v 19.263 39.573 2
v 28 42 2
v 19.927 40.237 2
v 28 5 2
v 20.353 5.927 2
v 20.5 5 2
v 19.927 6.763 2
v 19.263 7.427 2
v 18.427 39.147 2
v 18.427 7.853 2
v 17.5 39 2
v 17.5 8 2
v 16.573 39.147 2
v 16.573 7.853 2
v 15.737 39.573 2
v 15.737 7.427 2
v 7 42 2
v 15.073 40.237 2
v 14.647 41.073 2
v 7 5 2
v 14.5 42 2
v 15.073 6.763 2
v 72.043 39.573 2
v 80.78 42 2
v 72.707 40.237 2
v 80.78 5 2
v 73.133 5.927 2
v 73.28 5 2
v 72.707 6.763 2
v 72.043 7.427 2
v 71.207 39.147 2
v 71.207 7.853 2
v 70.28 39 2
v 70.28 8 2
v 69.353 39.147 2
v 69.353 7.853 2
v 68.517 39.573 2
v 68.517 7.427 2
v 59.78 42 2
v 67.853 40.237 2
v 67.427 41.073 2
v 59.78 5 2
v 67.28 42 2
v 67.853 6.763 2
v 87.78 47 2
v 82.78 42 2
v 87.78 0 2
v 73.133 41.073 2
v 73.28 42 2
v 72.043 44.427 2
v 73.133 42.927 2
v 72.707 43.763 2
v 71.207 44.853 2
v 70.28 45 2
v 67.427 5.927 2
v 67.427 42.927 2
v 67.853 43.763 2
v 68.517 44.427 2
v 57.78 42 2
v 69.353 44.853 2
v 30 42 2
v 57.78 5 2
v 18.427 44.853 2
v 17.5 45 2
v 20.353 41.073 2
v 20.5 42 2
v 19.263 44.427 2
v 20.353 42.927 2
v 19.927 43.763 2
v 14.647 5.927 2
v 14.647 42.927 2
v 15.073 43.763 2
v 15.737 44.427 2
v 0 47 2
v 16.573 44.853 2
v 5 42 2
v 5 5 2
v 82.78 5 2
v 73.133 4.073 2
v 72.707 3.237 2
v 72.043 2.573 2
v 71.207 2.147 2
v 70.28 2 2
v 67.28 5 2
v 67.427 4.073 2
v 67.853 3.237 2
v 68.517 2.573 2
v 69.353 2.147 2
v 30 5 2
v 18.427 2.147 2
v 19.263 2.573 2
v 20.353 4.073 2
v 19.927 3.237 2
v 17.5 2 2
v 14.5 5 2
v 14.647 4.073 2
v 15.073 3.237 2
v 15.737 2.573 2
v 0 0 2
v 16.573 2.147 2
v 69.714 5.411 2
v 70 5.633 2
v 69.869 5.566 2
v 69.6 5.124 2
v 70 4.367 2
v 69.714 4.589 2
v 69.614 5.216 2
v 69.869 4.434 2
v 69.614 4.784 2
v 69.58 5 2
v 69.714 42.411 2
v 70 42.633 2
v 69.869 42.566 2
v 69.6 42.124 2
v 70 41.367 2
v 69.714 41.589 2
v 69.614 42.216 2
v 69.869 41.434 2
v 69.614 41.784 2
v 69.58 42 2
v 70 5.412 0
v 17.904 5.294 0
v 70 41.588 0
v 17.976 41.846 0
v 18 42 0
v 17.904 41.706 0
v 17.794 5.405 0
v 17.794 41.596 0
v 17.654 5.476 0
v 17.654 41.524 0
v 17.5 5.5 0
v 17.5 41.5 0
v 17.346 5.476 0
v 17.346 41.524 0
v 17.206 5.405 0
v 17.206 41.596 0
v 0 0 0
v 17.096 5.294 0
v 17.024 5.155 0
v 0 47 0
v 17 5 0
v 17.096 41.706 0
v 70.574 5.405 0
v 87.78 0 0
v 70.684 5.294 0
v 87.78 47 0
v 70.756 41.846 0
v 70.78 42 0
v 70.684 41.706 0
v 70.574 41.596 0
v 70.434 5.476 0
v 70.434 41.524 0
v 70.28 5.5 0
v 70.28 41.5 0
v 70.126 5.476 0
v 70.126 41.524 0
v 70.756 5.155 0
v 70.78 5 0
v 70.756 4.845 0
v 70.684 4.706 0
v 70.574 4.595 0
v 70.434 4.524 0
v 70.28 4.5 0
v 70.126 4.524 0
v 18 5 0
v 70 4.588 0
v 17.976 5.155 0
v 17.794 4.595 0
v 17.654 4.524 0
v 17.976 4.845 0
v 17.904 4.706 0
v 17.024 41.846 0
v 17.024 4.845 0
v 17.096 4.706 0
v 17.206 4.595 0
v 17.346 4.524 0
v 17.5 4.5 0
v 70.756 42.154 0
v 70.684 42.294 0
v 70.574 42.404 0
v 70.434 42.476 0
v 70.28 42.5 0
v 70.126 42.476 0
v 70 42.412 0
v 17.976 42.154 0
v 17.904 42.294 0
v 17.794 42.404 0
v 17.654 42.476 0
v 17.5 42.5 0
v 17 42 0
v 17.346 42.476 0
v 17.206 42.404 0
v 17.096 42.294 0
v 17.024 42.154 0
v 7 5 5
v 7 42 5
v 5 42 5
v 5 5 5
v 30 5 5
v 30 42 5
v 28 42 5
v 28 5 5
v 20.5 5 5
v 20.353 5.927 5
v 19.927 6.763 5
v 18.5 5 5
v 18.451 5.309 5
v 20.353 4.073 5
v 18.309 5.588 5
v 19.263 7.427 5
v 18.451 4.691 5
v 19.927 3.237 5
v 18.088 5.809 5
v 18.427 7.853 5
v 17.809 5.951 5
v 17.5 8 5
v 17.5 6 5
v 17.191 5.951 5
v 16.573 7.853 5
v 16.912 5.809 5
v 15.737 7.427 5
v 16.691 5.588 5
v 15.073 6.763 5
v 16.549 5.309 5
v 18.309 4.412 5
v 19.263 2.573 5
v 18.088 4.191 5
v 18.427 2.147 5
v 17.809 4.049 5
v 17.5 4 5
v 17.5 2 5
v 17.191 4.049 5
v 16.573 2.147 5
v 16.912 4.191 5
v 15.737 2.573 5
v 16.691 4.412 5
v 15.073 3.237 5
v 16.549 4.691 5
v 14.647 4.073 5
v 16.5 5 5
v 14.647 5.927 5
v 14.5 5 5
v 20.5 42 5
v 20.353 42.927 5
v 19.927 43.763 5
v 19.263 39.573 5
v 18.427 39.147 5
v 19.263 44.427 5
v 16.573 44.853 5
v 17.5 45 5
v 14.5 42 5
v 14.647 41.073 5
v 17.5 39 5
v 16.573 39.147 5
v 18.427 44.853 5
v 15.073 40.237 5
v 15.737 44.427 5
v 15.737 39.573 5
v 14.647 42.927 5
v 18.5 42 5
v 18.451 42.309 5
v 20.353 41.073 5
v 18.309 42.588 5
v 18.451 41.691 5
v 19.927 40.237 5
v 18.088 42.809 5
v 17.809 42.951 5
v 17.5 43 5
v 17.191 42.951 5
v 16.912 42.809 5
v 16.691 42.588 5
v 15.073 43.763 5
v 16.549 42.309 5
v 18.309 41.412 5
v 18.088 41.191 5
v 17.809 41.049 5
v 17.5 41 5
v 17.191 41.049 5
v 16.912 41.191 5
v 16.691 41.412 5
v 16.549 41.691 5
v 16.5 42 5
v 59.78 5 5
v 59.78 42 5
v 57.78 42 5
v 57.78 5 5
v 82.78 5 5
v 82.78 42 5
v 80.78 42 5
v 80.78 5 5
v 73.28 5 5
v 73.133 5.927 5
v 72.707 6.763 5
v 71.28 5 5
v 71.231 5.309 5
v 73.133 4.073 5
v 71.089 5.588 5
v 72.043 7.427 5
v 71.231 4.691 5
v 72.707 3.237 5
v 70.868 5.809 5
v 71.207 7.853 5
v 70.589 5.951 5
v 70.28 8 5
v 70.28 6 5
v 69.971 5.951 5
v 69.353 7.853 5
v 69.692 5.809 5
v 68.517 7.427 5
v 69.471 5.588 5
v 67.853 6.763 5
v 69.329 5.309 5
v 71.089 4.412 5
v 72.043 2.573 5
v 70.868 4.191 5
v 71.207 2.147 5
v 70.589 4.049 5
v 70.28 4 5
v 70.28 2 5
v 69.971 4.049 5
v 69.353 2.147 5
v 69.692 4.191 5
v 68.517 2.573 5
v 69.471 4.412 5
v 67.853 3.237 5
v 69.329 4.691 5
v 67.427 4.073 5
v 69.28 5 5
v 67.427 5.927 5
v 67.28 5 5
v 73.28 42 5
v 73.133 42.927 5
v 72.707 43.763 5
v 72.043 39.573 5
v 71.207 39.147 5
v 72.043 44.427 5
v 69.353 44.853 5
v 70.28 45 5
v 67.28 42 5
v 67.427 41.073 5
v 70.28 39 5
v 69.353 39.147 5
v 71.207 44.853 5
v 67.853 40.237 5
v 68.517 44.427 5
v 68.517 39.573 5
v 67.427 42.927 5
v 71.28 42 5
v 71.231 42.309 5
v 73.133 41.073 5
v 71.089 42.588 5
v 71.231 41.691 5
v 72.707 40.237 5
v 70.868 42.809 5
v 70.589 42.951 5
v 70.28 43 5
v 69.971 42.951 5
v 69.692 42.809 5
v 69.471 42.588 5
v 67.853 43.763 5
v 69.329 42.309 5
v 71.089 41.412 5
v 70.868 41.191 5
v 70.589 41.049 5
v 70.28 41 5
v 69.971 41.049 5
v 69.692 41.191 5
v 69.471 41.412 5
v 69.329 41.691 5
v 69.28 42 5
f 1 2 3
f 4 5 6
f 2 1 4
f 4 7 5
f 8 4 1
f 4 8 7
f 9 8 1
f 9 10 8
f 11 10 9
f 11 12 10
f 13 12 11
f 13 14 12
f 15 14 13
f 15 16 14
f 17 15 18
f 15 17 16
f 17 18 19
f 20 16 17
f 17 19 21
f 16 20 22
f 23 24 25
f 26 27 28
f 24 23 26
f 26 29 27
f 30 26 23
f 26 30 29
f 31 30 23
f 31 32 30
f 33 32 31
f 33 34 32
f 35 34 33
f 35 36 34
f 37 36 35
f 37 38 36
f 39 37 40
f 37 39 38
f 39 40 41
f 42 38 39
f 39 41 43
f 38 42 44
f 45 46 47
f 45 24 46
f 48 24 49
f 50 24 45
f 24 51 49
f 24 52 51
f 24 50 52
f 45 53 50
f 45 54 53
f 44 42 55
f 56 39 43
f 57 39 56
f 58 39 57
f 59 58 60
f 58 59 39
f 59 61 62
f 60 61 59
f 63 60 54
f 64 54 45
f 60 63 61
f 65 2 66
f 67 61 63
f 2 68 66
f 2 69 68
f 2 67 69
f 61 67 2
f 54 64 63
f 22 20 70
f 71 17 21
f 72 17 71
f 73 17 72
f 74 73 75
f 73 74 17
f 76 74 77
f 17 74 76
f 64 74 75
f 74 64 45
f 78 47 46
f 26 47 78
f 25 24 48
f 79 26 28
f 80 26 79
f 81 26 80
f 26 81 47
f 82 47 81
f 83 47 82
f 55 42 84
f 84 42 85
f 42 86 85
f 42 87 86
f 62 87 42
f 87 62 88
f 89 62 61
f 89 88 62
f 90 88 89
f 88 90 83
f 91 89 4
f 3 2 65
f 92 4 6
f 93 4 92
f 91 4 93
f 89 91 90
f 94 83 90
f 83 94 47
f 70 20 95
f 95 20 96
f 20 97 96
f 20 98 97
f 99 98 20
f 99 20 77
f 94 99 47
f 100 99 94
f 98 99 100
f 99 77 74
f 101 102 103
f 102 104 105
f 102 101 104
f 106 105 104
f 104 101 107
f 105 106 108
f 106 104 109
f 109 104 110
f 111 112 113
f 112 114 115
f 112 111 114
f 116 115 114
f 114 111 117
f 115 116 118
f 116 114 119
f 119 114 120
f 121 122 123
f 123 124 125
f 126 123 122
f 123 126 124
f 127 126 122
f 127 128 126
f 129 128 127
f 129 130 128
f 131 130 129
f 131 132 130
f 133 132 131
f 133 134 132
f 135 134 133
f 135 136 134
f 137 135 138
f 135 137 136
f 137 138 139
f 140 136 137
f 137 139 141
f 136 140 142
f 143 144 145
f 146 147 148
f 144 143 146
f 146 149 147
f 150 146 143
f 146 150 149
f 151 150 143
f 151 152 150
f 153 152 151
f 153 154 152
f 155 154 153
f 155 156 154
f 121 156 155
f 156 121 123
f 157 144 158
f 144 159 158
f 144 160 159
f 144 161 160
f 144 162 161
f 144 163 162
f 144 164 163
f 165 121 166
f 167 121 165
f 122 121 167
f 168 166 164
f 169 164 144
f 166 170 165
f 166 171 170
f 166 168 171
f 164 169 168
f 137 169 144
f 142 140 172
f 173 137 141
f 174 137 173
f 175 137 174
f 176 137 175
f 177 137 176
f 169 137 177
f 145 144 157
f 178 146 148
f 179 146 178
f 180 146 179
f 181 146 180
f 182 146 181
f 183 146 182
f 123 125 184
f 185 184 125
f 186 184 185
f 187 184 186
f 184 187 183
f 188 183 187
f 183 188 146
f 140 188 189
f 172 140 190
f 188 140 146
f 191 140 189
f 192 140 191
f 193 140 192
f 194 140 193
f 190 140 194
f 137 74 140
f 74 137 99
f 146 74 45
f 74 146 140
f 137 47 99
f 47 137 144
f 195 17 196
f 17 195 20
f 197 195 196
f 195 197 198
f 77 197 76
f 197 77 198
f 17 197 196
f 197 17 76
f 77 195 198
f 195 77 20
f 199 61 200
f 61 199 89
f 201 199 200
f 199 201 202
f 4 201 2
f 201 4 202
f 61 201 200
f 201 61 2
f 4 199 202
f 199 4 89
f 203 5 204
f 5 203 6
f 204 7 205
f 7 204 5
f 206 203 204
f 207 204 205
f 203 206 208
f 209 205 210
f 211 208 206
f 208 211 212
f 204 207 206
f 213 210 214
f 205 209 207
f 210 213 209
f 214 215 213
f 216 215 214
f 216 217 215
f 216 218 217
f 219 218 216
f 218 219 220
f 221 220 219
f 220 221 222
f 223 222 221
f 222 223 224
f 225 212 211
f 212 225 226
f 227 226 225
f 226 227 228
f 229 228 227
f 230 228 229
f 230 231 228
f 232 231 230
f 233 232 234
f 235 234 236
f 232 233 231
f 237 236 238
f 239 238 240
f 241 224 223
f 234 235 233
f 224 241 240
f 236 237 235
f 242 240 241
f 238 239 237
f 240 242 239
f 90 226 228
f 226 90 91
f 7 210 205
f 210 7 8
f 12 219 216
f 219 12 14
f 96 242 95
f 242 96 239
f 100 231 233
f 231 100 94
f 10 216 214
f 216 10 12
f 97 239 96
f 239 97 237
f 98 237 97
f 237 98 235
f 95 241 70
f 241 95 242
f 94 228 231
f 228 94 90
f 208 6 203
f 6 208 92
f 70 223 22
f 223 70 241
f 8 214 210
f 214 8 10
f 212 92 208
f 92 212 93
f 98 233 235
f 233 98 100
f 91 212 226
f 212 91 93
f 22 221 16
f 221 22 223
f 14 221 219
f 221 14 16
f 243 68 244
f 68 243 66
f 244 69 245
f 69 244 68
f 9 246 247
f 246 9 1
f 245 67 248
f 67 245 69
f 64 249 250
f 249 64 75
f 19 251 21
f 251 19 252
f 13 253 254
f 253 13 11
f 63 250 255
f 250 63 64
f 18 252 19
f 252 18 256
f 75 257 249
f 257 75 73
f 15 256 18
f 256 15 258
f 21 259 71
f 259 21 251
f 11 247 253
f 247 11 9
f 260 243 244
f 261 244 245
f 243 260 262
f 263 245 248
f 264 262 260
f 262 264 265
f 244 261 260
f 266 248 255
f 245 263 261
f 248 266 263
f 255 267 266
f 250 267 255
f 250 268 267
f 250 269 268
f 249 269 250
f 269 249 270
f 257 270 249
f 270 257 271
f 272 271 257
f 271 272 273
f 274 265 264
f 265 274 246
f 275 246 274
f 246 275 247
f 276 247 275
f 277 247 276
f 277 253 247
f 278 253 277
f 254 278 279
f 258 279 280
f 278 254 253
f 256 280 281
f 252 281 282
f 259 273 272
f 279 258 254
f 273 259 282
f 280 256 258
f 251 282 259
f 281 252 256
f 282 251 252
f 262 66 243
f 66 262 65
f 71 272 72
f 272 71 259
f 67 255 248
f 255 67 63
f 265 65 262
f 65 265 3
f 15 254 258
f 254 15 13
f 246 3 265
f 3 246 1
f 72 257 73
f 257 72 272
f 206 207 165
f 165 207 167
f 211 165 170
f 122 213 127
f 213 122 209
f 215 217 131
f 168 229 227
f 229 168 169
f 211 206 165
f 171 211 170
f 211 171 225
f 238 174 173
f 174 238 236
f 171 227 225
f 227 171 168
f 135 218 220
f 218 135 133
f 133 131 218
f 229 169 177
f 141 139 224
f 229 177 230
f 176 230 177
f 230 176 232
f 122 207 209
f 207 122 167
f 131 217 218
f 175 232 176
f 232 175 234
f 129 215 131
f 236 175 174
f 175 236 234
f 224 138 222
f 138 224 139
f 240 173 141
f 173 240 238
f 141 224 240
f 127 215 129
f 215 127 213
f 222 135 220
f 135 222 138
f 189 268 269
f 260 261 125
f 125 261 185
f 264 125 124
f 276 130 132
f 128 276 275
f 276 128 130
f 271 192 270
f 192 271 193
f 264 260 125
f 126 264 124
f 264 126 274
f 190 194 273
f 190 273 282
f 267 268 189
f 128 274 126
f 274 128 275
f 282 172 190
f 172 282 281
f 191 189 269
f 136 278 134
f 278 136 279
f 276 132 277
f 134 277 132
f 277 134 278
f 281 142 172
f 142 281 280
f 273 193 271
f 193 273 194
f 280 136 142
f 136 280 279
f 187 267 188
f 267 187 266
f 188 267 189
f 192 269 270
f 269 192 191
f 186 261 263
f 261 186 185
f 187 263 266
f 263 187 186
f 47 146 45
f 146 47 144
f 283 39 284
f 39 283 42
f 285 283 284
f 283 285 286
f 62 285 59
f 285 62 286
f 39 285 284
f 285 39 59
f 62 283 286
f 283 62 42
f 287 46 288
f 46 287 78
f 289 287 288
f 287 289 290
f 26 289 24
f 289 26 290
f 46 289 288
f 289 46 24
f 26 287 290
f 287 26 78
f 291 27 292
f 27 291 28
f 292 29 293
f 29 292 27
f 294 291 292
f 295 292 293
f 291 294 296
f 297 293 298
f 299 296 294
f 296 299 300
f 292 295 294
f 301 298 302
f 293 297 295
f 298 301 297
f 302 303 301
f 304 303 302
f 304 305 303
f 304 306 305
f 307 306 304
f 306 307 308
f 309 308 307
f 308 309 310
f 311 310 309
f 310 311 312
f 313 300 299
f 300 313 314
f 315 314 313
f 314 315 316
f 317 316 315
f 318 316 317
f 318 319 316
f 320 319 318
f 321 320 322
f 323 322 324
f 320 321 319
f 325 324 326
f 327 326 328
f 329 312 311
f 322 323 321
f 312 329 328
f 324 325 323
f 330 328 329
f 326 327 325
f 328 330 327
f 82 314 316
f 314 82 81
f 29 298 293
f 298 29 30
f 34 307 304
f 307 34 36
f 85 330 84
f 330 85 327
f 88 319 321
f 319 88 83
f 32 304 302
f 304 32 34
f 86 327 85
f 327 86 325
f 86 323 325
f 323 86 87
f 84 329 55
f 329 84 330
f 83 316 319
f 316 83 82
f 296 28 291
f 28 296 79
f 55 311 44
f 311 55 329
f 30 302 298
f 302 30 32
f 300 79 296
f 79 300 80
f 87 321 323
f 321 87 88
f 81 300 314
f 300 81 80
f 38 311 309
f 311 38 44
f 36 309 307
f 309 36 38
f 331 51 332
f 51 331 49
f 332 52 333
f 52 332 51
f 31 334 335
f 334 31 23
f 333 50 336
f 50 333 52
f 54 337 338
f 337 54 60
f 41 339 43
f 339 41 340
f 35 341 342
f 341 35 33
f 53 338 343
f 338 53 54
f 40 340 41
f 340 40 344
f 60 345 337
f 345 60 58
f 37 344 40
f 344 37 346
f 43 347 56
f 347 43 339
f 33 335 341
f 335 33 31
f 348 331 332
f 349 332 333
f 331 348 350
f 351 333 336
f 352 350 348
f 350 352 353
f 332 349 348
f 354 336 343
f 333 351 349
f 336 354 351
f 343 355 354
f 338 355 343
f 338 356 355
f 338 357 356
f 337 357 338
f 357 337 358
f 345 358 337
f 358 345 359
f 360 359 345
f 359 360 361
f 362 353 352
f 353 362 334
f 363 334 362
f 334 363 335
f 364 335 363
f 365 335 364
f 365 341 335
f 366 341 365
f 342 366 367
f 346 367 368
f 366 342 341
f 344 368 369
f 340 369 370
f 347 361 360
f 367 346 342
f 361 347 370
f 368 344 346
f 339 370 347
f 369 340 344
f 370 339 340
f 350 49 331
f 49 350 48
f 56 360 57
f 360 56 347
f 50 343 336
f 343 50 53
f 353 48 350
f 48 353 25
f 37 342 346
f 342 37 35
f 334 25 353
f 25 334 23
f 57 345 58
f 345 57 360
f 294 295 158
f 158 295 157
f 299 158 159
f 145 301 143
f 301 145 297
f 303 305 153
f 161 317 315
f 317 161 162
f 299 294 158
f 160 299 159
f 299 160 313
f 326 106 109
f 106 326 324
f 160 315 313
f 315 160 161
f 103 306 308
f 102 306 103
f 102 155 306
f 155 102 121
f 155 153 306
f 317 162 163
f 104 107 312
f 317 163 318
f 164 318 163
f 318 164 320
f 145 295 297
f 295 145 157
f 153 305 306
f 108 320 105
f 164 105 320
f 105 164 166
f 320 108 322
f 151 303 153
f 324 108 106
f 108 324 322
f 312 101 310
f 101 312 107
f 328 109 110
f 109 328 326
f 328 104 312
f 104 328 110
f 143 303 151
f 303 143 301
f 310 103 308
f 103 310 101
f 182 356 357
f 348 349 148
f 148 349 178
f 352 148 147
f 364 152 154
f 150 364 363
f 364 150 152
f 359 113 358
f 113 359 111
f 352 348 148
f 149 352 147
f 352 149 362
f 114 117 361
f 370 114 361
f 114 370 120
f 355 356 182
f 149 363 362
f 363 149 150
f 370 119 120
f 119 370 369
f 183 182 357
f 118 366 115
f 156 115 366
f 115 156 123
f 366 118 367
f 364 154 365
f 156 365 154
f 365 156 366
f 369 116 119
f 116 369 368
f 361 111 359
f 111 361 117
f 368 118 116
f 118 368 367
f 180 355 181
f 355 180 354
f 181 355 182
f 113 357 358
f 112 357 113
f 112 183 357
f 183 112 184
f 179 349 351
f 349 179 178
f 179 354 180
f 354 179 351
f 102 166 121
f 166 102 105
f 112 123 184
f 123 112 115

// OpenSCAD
// attach two boards together.
// todo: parameterize distance.
// board: a-j, 1-17
// parameterization:
// span
//    4    touching
//    6
// esp32: span=11
// ttgo:  span=9

$fn=20;

xx=90;
yy=50;

vz=5;
vdiff=5;
vwid=2;

dx = 53;
dy = 36.5;
dd=1.5;

////////////////////

obxx=35;
obyy=47;
zz=2;
zz2=5;
obinset=5;
railwid=2;


module oneboard() {
  difference() {
    union() {
      cube([obxx,obyy,zz]);
      translate([obinset,obinset,0]) cube([railwid,obyy-2*obinset,zz2]);
      translate([obxx-obinset-railwid,obinset,0]) cube([railwid,obyy-2*obinset,zz2]);
      translate([obxx/2,5,0]) cylinder(5,d=6);
      translate([obxx/2,obyy-5,0]) cylinder(5,d=6);
    }
#      translate([obxx/2,5,0]) cylinder(5,d1=1,d2=2);
#     translate([obxx/2,obyy-5,0]) cylinder(5,d1=1,d2=2);
  }
}

module twoboards(spansize) {
  //totwidth=99;
  //cube([totwidth, yy,zz]);
  oneboard();
  translate([obxx,0,0]) cube([obxx,obyy,zz]);
  translate([obxx+2.54*spansize,0,0]) oneboard();
}


module old_main() {
  difference() {
    union() {
      cube([xx,yy,zz]);
      for(q=[5,30,xx-30,xx-5]) {
        #translate([q,vdiff,0]) cube([vwid,yy-vdiff*2,vz]);
      }
      for (i =[-1,1], j=[-1,1]) {
        #translate([xx/2+dx/2*i,yy/2+dy/2*j,0]) #cylinder(vz,d=dd*3);
      }
    }
    for (i =[-1,1], j=[-1,1]) {
      translate([xx/2+dx/2*i,yy/2+dy/2*j,0]) #cylinder(5,d=dd);
    }
  }
}

twoboards(7);
//main();
//oneboard();
